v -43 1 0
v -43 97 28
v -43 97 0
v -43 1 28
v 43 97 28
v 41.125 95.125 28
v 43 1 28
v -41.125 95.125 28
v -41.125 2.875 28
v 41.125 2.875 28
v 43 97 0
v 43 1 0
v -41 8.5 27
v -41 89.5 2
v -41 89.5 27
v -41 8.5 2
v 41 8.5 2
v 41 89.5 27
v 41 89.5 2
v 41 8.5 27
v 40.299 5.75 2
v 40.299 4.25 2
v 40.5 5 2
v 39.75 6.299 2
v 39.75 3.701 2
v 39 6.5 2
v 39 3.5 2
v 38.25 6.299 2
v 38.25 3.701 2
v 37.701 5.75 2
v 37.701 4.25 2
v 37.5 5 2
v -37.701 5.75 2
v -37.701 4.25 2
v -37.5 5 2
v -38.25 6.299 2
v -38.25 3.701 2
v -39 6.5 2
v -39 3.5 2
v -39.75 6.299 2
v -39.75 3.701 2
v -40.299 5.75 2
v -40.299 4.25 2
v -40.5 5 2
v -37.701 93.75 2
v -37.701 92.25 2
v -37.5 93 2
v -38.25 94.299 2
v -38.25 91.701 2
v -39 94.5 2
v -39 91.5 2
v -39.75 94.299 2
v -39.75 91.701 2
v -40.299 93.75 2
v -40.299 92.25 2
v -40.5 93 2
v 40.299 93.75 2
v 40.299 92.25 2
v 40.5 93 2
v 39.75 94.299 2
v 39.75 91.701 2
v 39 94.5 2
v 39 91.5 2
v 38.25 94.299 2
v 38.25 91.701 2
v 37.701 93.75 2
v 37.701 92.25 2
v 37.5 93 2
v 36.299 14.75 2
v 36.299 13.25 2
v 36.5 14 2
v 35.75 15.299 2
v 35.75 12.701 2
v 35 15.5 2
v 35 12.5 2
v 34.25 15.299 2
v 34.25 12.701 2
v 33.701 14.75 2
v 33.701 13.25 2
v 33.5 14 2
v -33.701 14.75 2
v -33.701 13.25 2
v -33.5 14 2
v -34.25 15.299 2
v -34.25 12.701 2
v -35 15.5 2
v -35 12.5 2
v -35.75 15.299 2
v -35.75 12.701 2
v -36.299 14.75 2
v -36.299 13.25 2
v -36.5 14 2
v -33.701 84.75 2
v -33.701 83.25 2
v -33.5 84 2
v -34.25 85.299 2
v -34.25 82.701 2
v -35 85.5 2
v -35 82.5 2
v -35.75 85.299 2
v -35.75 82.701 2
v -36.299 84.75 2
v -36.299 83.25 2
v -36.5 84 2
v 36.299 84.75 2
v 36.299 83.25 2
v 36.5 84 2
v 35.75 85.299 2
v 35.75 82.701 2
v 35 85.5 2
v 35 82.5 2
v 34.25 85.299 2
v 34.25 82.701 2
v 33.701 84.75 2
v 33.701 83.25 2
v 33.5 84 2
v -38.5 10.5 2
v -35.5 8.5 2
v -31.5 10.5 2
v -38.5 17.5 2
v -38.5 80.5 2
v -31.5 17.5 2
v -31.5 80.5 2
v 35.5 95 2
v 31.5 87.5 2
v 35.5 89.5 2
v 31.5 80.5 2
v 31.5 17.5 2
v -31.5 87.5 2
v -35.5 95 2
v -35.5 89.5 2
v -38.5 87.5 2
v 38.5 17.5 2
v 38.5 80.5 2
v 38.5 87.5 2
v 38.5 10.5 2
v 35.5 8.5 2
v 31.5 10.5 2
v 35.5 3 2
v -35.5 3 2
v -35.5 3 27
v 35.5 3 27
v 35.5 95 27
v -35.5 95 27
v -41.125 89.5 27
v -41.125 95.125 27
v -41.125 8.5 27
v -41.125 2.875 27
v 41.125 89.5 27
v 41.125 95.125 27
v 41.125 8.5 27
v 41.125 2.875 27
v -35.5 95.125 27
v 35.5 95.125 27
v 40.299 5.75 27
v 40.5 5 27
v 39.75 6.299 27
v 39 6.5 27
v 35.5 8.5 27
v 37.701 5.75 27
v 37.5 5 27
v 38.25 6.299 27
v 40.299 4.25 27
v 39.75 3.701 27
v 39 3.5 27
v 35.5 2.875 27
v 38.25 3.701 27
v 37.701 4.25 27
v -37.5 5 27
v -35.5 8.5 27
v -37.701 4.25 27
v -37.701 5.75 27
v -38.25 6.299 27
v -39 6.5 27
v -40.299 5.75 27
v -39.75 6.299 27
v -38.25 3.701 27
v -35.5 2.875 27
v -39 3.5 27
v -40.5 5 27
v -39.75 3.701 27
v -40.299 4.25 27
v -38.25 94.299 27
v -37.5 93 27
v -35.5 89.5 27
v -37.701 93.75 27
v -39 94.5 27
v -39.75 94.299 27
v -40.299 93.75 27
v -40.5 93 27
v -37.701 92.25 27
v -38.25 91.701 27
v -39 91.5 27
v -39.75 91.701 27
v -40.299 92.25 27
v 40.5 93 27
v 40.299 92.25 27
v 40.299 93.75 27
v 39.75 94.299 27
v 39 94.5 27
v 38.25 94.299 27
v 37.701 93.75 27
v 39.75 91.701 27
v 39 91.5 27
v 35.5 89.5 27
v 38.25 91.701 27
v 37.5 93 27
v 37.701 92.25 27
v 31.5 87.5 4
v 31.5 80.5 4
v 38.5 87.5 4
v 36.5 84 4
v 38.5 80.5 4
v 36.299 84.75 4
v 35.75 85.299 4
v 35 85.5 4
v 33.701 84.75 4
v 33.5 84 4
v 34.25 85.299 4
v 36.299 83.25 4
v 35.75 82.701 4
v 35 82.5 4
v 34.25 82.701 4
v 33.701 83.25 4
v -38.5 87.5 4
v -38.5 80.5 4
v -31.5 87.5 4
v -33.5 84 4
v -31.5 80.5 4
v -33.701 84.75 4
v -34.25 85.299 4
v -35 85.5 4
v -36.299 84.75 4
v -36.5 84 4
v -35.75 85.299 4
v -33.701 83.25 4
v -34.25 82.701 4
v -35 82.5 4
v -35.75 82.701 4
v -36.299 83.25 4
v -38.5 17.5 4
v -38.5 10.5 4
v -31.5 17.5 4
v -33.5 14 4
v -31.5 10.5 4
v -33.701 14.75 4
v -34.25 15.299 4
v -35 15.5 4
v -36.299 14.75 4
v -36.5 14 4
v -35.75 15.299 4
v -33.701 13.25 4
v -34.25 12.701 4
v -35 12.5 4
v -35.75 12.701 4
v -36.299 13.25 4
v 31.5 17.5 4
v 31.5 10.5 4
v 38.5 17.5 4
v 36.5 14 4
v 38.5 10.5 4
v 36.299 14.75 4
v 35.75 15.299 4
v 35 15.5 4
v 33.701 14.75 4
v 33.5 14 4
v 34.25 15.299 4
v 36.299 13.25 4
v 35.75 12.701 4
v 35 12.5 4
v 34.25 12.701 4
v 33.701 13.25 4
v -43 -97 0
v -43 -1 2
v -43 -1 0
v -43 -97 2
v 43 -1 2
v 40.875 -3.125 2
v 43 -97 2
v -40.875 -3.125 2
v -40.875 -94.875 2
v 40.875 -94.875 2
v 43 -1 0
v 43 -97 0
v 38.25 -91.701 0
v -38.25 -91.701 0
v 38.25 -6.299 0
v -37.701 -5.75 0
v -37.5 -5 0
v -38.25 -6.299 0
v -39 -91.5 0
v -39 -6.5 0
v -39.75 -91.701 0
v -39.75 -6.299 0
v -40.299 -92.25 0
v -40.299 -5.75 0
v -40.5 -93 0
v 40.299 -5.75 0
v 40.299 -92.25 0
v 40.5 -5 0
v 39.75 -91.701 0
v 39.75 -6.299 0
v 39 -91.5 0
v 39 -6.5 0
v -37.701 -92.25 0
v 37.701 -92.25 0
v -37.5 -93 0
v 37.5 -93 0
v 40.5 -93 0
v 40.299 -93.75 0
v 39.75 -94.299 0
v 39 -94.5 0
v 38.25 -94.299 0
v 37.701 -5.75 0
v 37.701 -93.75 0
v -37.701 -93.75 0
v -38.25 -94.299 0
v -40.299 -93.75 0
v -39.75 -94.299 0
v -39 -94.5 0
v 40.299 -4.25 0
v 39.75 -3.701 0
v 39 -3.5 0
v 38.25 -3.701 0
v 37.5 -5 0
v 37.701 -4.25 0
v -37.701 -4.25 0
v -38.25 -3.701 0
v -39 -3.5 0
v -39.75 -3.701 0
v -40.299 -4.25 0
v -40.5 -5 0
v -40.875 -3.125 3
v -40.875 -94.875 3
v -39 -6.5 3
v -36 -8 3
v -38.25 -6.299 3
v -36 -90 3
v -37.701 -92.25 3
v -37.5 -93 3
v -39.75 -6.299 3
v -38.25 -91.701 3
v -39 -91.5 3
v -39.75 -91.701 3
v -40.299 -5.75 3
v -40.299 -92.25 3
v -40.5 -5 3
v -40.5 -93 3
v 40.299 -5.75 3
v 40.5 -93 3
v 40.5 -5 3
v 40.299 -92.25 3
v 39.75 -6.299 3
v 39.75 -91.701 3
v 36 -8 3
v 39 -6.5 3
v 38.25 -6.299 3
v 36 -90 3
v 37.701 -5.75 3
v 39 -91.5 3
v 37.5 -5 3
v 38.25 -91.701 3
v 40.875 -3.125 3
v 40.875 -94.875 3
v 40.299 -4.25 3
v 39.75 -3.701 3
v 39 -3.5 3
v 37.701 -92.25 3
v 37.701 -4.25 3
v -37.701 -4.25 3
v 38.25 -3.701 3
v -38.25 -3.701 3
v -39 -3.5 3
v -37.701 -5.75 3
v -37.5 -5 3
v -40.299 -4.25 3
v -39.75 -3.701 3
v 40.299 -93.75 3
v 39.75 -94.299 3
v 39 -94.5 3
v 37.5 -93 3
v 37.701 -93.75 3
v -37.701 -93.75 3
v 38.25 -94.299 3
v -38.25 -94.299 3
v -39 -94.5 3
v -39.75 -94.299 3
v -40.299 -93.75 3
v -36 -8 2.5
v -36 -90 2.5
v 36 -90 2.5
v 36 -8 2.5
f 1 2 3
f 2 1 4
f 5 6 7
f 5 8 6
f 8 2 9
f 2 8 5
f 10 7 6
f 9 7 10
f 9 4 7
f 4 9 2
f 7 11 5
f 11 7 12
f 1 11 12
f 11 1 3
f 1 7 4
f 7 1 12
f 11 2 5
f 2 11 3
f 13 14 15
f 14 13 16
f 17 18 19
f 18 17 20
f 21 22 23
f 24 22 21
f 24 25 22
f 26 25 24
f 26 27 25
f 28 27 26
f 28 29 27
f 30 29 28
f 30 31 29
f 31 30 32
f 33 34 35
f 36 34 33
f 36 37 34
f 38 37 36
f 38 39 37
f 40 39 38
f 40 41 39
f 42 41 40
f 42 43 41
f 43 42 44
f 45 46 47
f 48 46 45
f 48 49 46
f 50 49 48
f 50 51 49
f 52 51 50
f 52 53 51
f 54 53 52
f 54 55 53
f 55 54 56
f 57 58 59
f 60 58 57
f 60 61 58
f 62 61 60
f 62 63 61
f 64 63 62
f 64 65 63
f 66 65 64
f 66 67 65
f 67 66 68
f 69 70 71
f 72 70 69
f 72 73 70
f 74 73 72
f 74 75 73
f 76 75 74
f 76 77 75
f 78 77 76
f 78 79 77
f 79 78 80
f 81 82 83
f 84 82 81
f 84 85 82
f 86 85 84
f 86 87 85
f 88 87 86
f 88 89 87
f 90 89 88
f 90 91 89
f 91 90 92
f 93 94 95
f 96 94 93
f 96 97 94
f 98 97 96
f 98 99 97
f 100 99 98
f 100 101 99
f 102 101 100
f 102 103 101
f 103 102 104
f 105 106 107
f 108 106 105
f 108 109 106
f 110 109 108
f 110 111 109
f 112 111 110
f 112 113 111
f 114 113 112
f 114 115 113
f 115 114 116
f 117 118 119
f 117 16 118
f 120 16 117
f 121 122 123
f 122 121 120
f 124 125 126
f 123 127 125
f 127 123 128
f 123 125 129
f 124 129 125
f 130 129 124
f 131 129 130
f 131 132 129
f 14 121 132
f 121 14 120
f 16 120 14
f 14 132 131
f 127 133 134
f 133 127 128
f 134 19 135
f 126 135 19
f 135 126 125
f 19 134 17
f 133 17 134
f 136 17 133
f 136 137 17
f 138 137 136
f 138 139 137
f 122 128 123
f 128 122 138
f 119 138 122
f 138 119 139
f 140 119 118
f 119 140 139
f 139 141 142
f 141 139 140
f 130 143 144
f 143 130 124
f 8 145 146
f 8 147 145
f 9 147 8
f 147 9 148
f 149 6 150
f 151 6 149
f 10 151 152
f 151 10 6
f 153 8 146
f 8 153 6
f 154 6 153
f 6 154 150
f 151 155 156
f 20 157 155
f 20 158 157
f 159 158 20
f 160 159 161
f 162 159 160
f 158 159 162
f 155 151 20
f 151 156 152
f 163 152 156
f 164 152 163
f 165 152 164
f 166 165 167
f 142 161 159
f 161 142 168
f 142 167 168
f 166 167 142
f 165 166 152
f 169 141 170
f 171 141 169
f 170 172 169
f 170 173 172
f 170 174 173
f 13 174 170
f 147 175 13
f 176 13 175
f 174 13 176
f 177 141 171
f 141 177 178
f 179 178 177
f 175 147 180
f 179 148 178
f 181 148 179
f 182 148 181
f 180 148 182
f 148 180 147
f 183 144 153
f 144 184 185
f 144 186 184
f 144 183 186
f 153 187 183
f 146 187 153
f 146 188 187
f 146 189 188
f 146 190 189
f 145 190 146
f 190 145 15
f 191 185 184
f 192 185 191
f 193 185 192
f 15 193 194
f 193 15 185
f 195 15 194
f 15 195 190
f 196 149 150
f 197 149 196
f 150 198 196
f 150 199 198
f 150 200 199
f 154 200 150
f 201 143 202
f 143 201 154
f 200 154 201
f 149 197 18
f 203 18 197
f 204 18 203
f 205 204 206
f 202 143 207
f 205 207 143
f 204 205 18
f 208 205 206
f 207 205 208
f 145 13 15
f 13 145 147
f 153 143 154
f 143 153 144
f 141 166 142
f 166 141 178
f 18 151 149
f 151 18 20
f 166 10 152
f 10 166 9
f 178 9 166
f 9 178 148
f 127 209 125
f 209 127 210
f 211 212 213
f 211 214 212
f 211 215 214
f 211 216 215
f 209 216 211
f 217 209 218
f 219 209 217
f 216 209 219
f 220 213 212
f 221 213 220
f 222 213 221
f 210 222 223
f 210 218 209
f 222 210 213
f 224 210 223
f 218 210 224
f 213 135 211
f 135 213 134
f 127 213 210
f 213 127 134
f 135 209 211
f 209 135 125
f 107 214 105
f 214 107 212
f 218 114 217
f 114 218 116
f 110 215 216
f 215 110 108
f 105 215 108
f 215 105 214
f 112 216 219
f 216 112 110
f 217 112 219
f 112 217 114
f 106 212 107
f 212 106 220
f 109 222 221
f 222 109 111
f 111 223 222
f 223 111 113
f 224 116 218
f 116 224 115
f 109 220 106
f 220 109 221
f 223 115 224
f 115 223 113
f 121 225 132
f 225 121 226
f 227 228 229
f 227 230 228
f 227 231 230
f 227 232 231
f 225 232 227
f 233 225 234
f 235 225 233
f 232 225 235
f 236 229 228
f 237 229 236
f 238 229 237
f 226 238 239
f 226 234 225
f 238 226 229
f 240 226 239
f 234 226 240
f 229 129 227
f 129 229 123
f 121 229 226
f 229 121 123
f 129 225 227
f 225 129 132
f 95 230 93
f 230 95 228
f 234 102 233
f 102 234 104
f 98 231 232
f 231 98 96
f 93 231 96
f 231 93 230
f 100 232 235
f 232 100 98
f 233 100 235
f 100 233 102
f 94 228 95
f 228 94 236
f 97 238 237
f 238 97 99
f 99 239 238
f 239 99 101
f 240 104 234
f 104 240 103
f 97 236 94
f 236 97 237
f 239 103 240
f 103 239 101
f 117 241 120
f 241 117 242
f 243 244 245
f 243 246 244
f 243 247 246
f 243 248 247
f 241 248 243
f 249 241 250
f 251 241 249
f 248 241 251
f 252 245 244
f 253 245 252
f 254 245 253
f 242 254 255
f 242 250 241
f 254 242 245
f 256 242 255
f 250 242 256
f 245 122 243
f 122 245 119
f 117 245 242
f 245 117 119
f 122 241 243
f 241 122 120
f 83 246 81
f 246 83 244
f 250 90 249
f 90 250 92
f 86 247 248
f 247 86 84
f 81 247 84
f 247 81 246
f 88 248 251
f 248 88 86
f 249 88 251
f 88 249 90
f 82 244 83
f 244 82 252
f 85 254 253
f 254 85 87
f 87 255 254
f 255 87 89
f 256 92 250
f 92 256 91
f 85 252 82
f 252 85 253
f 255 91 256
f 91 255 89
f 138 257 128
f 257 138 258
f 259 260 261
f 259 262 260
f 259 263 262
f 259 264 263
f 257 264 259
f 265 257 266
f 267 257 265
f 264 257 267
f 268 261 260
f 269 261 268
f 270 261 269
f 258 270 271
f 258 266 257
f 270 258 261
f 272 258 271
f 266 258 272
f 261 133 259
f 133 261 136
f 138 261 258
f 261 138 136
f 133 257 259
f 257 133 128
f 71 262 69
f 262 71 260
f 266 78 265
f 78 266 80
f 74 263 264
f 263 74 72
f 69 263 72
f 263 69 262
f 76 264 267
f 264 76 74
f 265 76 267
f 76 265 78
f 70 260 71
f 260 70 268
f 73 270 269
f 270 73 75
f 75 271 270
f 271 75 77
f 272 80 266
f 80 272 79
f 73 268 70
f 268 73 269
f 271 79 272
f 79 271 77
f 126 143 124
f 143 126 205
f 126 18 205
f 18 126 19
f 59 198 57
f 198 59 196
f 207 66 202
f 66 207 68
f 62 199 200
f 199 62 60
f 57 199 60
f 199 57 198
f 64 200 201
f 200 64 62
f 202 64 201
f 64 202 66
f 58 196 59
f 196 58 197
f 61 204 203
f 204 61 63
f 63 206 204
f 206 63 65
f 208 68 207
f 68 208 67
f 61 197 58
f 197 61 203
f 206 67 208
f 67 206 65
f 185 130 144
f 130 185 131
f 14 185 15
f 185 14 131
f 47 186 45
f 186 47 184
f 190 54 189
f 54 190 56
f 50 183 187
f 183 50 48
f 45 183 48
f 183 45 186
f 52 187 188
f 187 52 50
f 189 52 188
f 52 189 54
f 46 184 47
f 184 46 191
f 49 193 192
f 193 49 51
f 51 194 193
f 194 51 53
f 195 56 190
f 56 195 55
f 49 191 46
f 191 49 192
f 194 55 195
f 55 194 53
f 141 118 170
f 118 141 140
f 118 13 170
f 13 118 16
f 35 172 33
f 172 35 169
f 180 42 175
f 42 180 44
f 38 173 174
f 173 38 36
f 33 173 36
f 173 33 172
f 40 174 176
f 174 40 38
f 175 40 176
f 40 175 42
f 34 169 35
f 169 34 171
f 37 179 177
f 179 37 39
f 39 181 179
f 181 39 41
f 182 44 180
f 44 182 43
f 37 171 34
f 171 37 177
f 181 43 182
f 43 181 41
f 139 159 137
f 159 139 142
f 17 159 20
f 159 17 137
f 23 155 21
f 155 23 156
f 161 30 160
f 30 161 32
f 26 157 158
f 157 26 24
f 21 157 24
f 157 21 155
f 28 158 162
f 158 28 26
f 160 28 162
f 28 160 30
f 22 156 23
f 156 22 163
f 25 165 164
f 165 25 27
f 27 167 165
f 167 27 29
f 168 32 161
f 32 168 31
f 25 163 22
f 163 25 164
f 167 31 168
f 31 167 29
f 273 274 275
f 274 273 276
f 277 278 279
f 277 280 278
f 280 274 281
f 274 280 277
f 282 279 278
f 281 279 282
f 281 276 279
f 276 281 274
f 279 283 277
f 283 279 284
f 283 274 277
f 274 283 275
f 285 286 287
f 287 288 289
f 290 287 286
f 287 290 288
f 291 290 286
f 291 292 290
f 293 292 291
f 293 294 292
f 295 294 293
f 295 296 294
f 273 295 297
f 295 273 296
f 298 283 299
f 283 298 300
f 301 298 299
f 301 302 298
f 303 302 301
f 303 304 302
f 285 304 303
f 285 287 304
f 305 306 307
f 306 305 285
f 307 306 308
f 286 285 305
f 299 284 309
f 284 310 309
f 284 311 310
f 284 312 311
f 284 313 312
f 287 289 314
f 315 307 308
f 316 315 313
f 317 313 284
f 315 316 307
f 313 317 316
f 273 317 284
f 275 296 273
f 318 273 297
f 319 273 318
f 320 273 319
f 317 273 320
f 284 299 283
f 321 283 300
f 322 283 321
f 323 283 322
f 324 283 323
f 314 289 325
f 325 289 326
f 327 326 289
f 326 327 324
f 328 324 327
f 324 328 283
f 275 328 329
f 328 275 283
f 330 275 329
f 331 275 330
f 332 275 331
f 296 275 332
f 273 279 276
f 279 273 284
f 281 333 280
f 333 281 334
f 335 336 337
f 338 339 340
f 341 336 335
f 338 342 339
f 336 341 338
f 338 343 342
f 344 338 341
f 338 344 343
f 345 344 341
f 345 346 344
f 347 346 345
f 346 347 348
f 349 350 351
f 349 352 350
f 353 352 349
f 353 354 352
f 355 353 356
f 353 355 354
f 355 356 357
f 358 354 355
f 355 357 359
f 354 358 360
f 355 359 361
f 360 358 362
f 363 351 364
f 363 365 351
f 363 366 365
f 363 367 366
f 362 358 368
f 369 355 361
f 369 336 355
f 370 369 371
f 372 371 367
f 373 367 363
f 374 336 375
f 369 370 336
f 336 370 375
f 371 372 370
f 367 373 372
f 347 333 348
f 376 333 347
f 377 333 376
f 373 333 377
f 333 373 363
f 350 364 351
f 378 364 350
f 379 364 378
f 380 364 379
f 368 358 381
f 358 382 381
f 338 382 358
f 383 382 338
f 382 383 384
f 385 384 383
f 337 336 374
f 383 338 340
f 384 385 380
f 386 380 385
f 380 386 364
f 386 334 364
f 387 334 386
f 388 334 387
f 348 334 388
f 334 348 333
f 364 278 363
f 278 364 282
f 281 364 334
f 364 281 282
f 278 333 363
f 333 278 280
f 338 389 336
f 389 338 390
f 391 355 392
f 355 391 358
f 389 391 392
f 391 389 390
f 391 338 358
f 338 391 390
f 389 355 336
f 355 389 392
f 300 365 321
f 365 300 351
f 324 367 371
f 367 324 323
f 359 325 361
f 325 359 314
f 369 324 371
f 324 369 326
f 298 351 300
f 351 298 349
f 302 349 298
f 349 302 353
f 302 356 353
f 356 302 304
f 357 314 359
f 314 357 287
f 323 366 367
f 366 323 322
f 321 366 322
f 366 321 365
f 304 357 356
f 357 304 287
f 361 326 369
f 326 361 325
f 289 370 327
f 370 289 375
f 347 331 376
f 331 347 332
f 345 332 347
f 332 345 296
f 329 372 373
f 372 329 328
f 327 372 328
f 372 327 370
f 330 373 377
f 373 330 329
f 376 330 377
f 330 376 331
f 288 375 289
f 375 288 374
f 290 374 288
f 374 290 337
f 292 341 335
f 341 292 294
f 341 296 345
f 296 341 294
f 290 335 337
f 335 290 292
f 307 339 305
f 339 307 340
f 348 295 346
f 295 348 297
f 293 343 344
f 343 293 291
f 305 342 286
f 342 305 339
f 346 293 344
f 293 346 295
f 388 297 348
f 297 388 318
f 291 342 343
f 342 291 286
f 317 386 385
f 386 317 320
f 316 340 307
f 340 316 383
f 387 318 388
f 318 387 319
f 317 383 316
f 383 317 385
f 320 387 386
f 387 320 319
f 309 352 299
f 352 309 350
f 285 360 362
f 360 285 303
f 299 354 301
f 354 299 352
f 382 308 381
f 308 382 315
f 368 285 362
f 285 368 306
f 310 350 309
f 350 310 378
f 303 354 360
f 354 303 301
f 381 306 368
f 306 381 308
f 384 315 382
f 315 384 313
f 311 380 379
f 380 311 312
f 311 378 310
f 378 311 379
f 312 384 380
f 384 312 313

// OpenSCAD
/*
 * A PCB-box to-be-printed, license CC-BY-SA 4.0.
 *
 * http://creativecommons.org/licenses/by-sa/4.0/
 *
 * Author L2K2
 * Version 0.1
 */

// Board dimensions.
x = 80;
y = 80;

// Internal extra spacing, one sided. 
dx = 1;
dy = 6;

// Wall thickness.
th = 2;
th_seal = 5;

// Spacing in z-direction.
sp_below = 2;
sp_above = 23;
sp_seal = 1;

// For tight fits, i.e., the seal in the lid, some slack.
tolerance = 0.125;
eps = 0.001;

module mount_hole(x = 0, y = 0, z = 0, d = 5) {
    translate([x, y, 0])
    difference() {
        translate([-d / 2 - th, -d / 2 - th, 0])
        cube([d + 2 * th, d + 2 * th, th + z], center = false);
        translate([0, 0, th])
        cylinder(h = z + th, d = d, center = false, $fn = 12);
    }
}
module inverse_hole(x = 0, y = 0, z = 0, d = 5) {
    translate([x, y, -th])
    cylinder(h = z + 2 * th, d = d, center = false, $fn = 12);
}

// Main box.
translate([0, y / 2 + dy + th + 1, 0]) {
    difference() {
        translate([-x / 2 - dx - th, -y / 2 - dy - th, 0])
        cube([x + 2 * dx + 2 * th, y + 2 * dy + 2 * th, th + sp_below + sp_above + sp_seal], center = false);
        
        translate([-x / 2 - dx, -y / 2 - dy, th])
        cube([x + 2 * dx, y + 2 * dy, th + sp_below + sp_above + sp_seal], center = false); 
        
        translate([-x / 2 - dx - tolerance, -y / 2 - dy - tolerance, th + sp_below + sp_above])
        cube([x + 2 * dx + 2 * tolerance, y + 2 * dy + 2 * tolerance, th + sp_seal], center = false); 
    }

    // Mount holes.
    mount_hole(35, 35, sp_below, 3);
    mount_hole(-35, 35, sp_below, 3);
    mount_hole(-35, -35, sp_below, 3);
    mount_hole(35, -35, sp_below, 3);

    mount_hole(39, 44, sp_below + sp_above, 3);
    mount_hole(-39, 44, sp_below + sp_above, 3);
    mount_hole(-39, -44, sp_below + sp_above, 3);
    mount_hole(39, -44, sp_below + sp_above, 3);
}

// Lid.
translate([0, -y / 2 - dy - th - 1, 0]) {
    difference() {
        union() {
            translate([-x / 2 - dx - th, -y / 2 - dy - th, 0])
            cube([x + 2 * dx + 2 * th, y + 2 * dy + 2 * th, th], center = false);
            translate([-x / 2 - dx + tolerance, -y / 2 - dy + tolerance, 0])
            cube([x + 2 * dx - 2 * tolerance, y + 2 * dy - 2 * tolerance, th + sp_seal], center = false);
        }
        
        translate([-x / 2 - dx + th_seal, -y / 2 - dy + th_seal, th + sp_seal / 2])
        cube([x + 2 * dx - 2 * th_seal, y + 2 * dy - 2 * th_seal, th + sp_seal], center = false);

        inverse_hole(39, 44, th + sp_seal + th, 3);
        inverse_hole(-39, 44, th + sp_seal + th, 3);
        inverse_hole(-39, -44, th + sp_seal + th, 3);
        inverse_hole(39, -44, th + sp_seal + th, 3);
    }
}
